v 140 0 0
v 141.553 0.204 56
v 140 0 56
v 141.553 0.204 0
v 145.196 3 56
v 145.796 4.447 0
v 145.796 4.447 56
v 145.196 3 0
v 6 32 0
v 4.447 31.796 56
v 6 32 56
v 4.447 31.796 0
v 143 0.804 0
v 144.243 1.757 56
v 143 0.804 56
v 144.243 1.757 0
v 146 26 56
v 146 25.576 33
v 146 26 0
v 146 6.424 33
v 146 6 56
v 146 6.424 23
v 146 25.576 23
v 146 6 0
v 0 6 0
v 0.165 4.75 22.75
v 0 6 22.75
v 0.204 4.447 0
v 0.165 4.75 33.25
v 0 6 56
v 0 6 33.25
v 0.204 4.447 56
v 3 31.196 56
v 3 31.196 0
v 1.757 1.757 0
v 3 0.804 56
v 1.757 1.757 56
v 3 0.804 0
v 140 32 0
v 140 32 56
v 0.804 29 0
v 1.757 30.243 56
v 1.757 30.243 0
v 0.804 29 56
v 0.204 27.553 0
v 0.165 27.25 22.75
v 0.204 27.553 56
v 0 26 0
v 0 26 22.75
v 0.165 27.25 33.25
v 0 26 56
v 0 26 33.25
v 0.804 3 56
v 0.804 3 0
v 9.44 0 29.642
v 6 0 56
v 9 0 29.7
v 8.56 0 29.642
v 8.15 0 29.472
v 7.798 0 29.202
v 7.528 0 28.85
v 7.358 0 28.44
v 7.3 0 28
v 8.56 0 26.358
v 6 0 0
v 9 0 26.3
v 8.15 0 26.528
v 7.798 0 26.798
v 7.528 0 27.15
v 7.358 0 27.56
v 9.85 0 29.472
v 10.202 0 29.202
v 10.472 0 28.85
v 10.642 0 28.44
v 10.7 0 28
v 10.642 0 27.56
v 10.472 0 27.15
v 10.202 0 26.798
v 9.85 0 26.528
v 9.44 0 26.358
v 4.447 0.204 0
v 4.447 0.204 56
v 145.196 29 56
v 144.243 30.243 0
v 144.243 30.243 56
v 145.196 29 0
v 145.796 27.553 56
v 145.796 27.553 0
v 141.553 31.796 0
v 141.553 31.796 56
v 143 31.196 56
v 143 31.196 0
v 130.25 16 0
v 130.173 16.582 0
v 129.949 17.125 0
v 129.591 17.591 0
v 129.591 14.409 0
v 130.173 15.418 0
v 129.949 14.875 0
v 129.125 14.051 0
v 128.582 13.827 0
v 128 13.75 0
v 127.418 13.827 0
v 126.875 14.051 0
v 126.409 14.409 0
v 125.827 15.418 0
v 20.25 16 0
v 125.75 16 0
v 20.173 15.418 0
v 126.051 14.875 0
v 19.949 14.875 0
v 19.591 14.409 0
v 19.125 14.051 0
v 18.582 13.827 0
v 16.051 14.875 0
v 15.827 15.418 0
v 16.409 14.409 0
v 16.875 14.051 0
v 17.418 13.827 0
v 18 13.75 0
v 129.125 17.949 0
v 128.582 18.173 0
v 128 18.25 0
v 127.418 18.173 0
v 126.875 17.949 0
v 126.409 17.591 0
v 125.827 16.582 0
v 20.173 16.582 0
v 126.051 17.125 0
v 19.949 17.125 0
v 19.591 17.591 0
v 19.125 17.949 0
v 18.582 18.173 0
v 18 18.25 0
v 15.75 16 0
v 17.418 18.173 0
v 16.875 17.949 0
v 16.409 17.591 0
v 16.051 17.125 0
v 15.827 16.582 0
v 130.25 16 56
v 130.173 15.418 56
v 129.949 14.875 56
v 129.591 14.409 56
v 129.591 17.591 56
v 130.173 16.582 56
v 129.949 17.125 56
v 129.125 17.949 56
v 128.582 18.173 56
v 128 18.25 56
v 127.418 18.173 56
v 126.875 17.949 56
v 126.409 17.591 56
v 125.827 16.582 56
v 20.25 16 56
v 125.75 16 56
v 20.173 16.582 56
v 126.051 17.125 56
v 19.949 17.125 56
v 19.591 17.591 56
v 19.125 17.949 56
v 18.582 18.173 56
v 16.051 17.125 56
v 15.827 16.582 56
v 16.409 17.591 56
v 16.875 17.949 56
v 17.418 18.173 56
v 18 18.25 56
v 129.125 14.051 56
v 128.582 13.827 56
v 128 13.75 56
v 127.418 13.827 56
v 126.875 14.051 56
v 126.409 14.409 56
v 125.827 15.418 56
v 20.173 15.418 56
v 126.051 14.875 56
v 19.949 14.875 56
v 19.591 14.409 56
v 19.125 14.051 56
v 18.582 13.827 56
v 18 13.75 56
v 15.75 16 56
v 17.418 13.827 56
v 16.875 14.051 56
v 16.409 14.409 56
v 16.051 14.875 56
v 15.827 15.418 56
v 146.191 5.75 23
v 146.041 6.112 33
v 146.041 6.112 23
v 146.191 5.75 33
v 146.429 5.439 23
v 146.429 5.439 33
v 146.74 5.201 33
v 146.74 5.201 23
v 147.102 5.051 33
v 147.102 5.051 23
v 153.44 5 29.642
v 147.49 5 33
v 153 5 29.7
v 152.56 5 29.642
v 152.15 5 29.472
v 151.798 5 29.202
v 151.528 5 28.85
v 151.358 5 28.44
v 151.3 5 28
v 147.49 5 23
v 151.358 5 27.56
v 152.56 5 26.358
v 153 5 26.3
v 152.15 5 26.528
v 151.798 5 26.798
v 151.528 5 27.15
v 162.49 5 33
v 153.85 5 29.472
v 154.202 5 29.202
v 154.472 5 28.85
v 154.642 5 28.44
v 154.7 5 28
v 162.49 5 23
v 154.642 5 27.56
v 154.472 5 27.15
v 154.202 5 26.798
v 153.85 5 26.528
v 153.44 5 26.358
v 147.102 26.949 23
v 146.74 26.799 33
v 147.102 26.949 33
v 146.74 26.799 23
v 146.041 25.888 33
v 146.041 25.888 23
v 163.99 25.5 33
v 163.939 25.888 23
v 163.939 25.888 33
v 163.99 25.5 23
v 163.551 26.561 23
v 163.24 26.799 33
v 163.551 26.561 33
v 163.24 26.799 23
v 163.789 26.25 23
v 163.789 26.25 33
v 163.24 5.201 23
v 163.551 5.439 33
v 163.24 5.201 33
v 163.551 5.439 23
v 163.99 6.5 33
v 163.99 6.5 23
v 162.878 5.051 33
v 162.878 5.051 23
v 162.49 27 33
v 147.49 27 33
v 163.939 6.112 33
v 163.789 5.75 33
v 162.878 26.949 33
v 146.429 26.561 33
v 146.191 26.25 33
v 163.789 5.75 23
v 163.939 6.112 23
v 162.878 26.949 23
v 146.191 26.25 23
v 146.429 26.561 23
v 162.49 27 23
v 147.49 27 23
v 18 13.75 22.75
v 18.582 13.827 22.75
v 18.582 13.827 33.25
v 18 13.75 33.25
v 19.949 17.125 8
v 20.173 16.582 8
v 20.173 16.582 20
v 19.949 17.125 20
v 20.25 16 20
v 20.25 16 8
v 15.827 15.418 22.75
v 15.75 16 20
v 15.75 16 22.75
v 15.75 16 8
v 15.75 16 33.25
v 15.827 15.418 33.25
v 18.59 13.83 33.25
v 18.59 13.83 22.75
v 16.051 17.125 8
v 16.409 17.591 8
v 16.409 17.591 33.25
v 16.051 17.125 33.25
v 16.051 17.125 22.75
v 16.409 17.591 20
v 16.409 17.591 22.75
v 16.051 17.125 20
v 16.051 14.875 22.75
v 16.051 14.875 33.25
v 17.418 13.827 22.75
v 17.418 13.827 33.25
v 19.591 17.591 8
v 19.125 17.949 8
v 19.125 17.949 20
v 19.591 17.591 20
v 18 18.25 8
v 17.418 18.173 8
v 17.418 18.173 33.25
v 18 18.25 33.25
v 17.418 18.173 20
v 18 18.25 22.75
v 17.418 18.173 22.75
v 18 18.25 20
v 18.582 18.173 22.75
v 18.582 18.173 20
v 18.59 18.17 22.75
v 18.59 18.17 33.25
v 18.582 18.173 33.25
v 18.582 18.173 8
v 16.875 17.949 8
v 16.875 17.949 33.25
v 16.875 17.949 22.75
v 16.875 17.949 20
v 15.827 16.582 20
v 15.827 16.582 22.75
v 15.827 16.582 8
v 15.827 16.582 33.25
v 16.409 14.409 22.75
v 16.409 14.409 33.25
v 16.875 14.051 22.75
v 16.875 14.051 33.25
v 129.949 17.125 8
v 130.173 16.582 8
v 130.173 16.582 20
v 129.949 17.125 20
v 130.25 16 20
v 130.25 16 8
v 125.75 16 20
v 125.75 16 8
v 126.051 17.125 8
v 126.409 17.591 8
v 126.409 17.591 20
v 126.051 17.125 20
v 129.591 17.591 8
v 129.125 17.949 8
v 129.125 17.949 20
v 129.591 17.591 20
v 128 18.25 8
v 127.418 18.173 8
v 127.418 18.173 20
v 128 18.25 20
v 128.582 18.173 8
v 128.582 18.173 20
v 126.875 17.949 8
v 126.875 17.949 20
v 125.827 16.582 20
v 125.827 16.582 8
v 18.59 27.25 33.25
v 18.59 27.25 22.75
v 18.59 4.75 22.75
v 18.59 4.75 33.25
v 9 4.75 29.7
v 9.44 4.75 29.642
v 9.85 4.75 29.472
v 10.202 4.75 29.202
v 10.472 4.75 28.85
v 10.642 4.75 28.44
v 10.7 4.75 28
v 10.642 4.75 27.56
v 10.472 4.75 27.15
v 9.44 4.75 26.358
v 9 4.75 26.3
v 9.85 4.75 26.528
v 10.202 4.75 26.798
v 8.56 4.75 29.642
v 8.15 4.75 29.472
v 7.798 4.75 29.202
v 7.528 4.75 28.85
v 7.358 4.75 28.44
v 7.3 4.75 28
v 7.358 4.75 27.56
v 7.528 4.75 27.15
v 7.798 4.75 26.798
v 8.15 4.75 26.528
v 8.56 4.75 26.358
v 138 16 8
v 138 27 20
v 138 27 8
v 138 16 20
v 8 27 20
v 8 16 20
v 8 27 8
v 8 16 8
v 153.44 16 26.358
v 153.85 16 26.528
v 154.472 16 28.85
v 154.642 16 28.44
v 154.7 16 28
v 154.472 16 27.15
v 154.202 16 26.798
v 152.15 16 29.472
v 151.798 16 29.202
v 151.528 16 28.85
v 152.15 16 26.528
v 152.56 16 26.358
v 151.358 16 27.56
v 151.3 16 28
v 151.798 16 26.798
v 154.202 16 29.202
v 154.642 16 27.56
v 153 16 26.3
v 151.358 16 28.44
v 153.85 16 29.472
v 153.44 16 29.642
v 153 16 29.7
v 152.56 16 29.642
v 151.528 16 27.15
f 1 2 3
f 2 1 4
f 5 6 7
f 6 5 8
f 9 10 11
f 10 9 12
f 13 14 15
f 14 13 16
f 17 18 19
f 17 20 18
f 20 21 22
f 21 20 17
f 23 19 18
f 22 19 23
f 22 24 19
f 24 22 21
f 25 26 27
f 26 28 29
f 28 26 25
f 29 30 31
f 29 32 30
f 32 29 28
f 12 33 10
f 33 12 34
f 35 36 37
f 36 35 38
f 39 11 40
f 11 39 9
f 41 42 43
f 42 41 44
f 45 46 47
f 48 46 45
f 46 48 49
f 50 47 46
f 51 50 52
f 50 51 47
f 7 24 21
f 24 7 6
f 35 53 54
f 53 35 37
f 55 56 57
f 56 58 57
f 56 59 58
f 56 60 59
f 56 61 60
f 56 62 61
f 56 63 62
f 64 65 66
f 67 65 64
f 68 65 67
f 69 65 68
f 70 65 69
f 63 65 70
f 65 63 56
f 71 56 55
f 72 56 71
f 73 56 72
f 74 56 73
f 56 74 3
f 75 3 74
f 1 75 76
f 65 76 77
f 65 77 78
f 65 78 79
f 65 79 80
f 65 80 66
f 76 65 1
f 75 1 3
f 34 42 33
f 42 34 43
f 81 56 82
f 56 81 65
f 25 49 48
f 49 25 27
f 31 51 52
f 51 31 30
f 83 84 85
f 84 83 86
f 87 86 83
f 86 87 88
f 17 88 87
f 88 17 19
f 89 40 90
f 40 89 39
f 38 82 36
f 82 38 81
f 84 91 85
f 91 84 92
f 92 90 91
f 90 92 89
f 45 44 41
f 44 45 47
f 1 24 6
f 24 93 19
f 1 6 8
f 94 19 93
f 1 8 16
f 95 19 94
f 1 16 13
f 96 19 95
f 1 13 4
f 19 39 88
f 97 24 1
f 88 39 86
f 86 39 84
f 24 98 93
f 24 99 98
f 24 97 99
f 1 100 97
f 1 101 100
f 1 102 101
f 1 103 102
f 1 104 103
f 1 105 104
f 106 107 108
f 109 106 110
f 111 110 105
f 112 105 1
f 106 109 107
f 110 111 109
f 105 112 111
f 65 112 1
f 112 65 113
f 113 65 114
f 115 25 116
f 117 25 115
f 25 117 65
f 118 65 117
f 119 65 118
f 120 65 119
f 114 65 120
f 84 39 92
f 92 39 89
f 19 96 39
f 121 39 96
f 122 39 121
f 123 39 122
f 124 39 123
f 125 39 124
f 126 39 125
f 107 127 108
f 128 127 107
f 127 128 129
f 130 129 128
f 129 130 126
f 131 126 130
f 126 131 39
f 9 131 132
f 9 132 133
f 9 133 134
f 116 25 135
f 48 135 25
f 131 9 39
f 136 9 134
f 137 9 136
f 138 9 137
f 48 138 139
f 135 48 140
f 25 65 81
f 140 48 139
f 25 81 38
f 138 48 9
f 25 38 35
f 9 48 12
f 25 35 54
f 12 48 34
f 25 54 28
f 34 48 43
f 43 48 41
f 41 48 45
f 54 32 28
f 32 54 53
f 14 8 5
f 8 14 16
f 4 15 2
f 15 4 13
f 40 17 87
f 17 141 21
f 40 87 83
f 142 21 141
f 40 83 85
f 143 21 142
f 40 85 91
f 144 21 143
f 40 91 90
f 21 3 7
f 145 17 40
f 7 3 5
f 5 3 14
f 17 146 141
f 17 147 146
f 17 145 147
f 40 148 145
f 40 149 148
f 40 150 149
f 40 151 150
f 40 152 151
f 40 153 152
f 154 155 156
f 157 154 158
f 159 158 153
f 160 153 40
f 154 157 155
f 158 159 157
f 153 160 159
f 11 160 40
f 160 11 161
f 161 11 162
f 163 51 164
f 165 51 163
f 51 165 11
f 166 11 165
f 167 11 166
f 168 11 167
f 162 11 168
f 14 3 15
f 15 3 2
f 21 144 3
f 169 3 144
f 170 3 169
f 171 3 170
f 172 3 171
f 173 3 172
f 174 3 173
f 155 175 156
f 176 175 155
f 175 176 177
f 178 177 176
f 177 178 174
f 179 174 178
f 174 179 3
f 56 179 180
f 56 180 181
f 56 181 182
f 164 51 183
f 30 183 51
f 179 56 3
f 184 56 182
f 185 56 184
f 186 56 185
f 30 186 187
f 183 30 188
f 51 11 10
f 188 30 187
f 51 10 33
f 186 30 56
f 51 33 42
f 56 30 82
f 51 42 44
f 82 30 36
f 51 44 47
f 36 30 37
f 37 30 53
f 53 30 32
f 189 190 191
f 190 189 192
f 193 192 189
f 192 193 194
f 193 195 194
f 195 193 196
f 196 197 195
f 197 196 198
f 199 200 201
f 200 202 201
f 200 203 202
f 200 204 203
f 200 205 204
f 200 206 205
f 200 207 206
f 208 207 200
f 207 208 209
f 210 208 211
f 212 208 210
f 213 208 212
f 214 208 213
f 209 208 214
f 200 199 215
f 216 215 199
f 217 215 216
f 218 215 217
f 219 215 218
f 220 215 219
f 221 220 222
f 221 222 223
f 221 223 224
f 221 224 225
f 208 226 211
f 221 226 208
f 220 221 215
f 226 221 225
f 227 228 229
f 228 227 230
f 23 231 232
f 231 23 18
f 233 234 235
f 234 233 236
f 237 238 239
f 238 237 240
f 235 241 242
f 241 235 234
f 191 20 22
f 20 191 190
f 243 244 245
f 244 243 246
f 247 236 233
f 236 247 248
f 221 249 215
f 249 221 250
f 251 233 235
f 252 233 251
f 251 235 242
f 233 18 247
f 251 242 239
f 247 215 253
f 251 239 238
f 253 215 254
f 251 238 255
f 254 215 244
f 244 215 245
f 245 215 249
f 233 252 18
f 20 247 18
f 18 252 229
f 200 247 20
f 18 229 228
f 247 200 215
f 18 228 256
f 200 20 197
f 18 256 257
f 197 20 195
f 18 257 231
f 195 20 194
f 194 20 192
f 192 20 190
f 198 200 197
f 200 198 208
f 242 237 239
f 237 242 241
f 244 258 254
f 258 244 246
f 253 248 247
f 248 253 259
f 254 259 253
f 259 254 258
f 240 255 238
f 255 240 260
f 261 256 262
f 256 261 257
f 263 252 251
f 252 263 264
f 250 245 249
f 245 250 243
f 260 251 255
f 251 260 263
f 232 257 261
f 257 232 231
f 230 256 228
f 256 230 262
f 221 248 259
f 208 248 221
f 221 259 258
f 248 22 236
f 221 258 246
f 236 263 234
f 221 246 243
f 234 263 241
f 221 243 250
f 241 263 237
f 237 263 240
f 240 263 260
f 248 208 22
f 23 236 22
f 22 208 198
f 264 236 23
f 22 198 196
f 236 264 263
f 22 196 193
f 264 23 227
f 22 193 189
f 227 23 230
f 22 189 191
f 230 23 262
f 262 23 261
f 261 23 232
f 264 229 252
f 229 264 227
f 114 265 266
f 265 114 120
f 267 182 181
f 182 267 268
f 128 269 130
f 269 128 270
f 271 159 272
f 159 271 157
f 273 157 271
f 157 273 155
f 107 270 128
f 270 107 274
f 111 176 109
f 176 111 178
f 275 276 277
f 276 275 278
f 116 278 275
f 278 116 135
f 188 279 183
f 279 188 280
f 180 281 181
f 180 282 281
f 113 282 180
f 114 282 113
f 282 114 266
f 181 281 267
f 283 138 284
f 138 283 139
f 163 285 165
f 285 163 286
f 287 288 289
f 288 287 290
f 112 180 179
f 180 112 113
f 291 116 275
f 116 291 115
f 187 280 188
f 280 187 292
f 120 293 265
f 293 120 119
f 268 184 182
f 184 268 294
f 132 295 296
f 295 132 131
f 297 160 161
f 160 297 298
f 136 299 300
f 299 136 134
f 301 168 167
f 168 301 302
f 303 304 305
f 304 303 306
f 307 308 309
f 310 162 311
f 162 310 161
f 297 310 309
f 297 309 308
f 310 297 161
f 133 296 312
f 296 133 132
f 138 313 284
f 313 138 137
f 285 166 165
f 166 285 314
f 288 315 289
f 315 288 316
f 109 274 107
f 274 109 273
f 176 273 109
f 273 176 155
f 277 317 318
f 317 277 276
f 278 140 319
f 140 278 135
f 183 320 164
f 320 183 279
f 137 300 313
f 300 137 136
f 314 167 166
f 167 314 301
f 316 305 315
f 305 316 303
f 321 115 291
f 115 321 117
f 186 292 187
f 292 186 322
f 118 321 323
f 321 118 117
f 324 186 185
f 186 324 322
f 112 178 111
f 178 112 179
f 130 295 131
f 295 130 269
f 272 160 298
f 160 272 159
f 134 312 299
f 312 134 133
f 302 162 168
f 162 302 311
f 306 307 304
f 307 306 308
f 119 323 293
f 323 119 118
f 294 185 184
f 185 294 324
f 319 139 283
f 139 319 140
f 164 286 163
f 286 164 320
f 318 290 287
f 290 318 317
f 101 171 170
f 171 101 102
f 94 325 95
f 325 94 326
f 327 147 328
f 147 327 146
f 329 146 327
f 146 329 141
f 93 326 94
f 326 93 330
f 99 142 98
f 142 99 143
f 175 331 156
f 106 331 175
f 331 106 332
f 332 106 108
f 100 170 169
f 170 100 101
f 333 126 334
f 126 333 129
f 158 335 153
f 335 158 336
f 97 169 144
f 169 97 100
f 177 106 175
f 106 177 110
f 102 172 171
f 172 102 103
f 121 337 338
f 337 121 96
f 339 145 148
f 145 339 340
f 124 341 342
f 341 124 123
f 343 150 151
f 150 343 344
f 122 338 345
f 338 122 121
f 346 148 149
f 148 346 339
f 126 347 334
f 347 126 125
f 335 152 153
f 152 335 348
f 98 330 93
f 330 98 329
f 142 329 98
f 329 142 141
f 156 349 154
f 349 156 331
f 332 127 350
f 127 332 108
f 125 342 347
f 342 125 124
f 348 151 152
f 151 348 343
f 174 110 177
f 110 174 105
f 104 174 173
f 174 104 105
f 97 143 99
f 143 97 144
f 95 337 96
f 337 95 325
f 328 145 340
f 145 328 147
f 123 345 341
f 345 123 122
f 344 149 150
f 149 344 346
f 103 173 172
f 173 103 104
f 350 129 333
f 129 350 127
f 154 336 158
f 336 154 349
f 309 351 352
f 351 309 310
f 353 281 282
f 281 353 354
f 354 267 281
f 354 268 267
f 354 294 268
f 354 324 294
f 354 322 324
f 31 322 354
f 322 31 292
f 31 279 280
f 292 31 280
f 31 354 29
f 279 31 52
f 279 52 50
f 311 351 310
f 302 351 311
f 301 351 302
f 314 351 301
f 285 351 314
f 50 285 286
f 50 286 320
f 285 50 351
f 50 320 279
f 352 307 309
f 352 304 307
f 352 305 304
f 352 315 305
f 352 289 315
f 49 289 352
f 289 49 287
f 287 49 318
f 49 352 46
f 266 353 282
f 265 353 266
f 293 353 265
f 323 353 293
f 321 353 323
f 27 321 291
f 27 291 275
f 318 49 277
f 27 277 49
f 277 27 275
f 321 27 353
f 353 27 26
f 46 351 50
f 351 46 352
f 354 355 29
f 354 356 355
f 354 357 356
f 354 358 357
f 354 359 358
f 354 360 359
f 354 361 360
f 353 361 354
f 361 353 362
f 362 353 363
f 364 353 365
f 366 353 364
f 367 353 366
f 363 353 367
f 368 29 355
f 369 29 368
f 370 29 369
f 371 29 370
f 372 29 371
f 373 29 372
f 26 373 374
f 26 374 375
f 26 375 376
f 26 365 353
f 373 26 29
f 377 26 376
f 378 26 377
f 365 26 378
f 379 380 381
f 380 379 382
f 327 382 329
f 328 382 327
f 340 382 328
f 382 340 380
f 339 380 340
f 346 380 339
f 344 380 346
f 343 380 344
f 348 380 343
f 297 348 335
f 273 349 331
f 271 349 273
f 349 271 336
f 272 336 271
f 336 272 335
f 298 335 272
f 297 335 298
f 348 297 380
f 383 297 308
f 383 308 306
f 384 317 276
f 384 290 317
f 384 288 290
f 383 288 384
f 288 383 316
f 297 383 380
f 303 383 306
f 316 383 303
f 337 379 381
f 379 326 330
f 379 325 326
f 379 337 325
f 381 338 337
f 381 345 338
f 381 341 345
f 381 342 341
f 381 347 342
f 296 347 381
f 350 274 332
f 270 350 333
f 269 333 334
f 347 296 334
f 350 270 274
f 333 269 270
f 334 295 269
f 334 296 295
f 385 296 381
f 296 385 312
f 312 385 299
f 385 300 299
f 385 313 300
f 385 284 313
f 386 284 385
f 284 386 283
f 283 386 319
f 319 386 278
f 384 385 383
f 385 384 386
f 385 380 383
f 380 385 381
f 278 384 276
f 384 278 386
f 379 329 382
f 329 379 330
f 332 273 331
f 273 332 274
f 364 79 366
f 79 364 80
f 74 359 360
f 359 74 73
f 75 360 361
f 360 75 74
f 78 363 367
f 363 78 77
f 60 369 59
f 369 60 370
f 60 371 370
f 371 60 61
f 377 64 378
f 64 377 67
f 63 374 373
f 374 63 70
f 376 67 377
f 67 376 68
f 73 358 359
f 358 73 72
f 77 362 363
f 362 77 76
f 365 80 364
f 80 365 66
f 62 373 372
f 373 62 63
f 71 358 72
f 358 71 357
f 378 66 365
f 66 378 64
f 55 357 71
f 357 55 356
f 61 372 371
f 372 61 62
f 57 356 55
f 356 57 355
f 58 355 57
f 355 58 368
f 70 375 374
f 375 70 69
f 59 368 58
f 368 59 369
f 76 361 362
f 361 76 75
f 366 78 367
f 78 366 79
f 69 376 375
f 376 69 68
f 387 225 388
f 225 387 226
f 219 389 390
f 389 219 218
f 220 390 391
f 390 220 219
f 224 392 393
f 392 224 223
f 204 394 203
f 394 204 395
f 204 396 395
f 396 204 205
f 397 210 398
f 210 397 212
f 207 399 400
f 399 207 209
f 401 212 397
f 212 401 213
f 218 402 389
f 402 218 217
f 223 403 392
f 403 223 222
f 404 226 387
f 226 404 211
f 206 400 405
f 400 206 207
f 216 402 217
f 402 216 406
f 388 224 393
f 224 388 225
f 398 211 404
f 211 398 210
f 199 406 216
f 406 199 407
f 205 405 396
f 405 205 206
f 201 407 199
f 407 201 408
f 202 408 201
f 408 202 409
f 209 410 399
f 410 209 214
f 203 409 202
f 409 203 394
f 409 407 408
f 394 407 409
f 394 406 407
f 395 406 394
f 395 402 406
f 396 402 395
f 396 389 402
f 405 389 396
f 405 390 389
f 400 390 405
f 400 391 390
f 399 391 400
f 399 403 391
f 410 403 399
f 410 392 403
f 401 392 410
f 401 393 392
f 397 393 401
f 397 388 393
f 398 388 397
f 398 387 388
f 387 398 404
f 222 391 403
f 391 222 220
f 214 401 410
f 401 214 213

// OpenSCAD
// file: 00_parameters.scad
// TenderCells DoorCell V1 shared parameters
// Units: millimeters

overall_w = 438;
overall_h = 368;
frame_depth = 56;

clear_w = 242;
clear_h = 312;

rail_thick = 32;
jamb_w = 48;
motor_jamb_w = 78;

// Printability targets
target_bed_xy = 220;
comfortable_part_max = 180;

// Modular frame split dimensions
top_seg_len = overall_w / 3;
bottom_seg_len = overall_w / 3;
left_jamb_seg_h = overall_h / 2;
right_lower_h = 118;
right_motor_h = 156;
right_upper_h = overall_h - right_lower_h - right_motor_h;

// Low-cost electronics envelope used by DoorCell V1.4.
// These dimensions are based on common generic modules, not a custom PCB.
esp32_board = [58, 31, 8];
drv8871_board = [31, 26, 7];
current_sensor_board = [26, 22, 7];
lm2596_board = [44, 22, 14];
inline_fuse_body = [45, 15, 14];
cn3065_board = [44, 24, 8];
electronics_clearance = 1.5;
controller_wall = 3;
controller_box_w = 170;
controller_box_h = 115;
controller_box_d = 46;
controller_lid_insert_offset = 11;
controller_m12_gland_d = 12.8;
controller_m10_gland_d = 10.6;
controller_m8_gland_d = 8.4;
controller_button_d = 16.2;

// Brass heat-set/push-in insert features.
insert_post_d = 8.0;
insert_post_h = 8.0;
insert_pilot_d = 4.6;
insert_pilot_depth = 6.5;
hold_down_screw_clearance = 3.4;

// Motor envelope for common 25GA/JGA25-370 gearmotors with optional encoder.
motor_body_d = 25.0;
motor_body_clearance_d = 27.2;
motor_body_len = 65;
motor_encoder_clearance = 16;
motor_mount_plate = [72, 92, 12];
motor_mount_cradle = [54, 74, 28];

// Optional solar add-on.
solar_panel_w = 145;
solar_panel_h = 145;
solar_panel_t = 4.0;
solar_panel_frame_border = 10;
solar_panel_frame_w = solar_panel_w + 2*solar_panel_frame_border;
solar_panel_frame_h = solar_panel_h + 2*solar_panel_frame_border;
solar_panel_back_depth = 14;
solar_panel_lip_overlap = 3;
solar_ball_d = 22;
solar_ball_socket_clearance = 0.45;
solar_mount_m5 = 5.4;

// Tongue-and-groove frame joints
// Fit target: common FDM printers with PETG/ASA.
// Clearance is per side, so sockets add 2x this value.
tongue_len = 18;
tongue_w = 22;
tongue_z = 10;
tongue_clearance_side = 0.25;
tongue_socket_depth_extra = 0.60;

door_w = 270;
door_h = 326;
door_t = 8;

track_gap = 11;
track_depth = 12;

// Rack-and-pinion drive
// Metric module gear math:
// circular_pitch = PI * module
// pitch_diameter = module * tooth_count
// outside_diameter = module * (tooth_count + 2)
// root_diameter = module * (tooth_count - 2.5)
gear_module = 2.0;
pressure_angle = 20;
gear_backlash = 0.20; // mm removed from rack tooth thickness at pitch line

pinion_teeth = 16;
pinion_pitch_d = gear_module * pinion_teeth;
pinion_pitch_radius = pinion_pitch_d / 2;
pinion_outer_d = gear_module * (pinion_teeth + 2);
pinion_outer_radius = pinion_outer_d / 2;
pinion_root_d = gear_module * (pinion_teeth - 2.5);
pinion_root_radius = pinion_root_d / 2;
pinion_thick = 12;
shaft_d = 6.2;

rack_tooth_count = 15;
rack_circular_pitch = 3.141592653589793 * gear_module;
rack_len = rack_circular_pitch * rack_tooth_count;
rack_w = 18;
rack_t = 6;
rack_addendum = gear_module;
rack_dedendum = 1.25 * gear_module;
rack_tooth_h = rack_addendum + rack_dedendum;
rack_pitch_line_z = rack_dedendum;
rack_tooth_pitch_thickness = rack_circular_pitch / 2 - gear_backlash;
rack_tooth_top_w = rack_tooth_pitch_thickness - 2 * rack_addendum * tan(pressure_angle);
rack_tooth_root_w = rack_tooth_pitch_thickness + 2 * rack_dedendum * tan(pressure_angle);

screw_m3 = 3.4;
screw_m4 = 4.5;
insert_m3 = 4.6;

eps = 0.01;

module rounded_box(size=[10,10,10], r=2) {
  hull() {
    translate([r,r,0]) cylinder(h=size[2], r=r, $fn=24);
    translate([size[0]-r,r,0]) cylinder(h=size[2], r=r, $fn=24);
    translate([r,size[1]-r,0]) cylinder(h=size[2], r=r, $fn=24);
    translate([size[0]-r,size[1]-r,0]) cylinder(h=size[2], r=r, $fn=24);
  }
}

module m3_clearance_hole(h=20) {
  cylinder(h=h, d=screw_m3, $fn=24);
}

module m4_clearance_hole(h=20) {
  cylinder(h=h, d=screw_m4, $fn=24);
}

module heat_insert_hole(h=6) {
  cylinder(h=h, d=insert_m3, $fn=24);
}

module heat_insert_post(h=insert_post_h, d=insert_post_d) {
  difference() {
    cylinder(h=h, d=d, $fn=32);
    translate([0,0,h-insert_pilot_depth+eps])
      cylinder(h=insert_pilot_depth+eps, d=insert_pilot_d, $fn=24);
  }
}

module m3_hold_down_slot(length=10, h=4) {
  hull() {
    translate([-length/2,0,0]) cylinder(h=h, d=hold_down_screw_clearance, $fn=20);
    translate([ length/2,0,0]) cylinder(h=h, d=hold_down_screw_clearance, $fn=20);
  }
}

module rail_channel(length=100) {
  cube([length, track_gap, track_depth]);
}

module frame_tongue_x() {
  rounded_box([tongue_len, tongue_w, tongue_z], r=1.5);
}

module frame_socket_x() {
  cube([
    tongue_len + tongue_socket_depth_extra,
    tongue_w + 2*tongue_clearance_side,
    tongue_z + 2*tongue_clearance_side
  ]);
}

module frame_tongue_y() {
  rounded_box([tongue_w, tongue_len, tongue_z], r=1.5);
}

module frame_socket_y() {
  cube([
    tongue_w + 2*tongue_clearance_side,
    tongue_len + tongue_socket_depth_extra,
    tongue_z + 2*tongue_clearance_side
  ]);
}

module rack_teeth(len=rack_len) {
  teeth = floor(len / rack_circular_pitch);
  for (i=[0:teeth-1]) {
    center = i*rack_circular_pitch + rack_circular_pitch/2;
    translate([0, 0, rack_t-0.20])
      linear_extrude(height=rack_w)
        polygon(points=[
          [center - rack_tooth_root_w/2, 0],
          [center + rack_tooth_root_w/2, 0],
          [center + rack_tooth_top_w/2, rack_tooth_h],
          [center - rack_tooth_top_w/2, rack_tooth_h]
        ]);
  }
}

function polar_point(r, a) = [r * cos(a), r * sin(a)];
// file: frame_modular_common.scad
include <00_parameters.scad>

module horizontal_frame_segment(seg_len=top_seg_len, rail_kind="top", joint_left="socket", joint_right="tongue") {
  difference() {
    union() {
      rounded_box([seg_len, rail_thick, frame_depth], r=6);

      if (joint_right == "tongue") {
        translate([seg_len - eps, rail_thick/2 - tongue_w/2, frame_depth/2 - tongue_z/2])
          frame_tongue_x();
      }
    }

    // Tongue receiver from previous segment.
    if (joint_left == "socket") {
      translate([
        -eps,
        rail_thick/2 - (tongue_w + 2*tongue_clearance_side)/2,
        frame_depth/2 - (tongue_z + 2*tongue_clearance_side)/2
      ])
        frame_socket_x();
    }

    // Sliding door guide channel.
    if (rail_kind == "top") {
      translate([8, rail_thick-track_gap-5, 8])
        rail_channel(length=seg_len-16);
    } else {
      translate([8, 5, frame_depth-track_depth-8])
        rail_channel(length=seg_len-16);

      // Drain slots for bottom rail.
      for (x=[seg_len*0.25, seg_len*0.5, seg_len*0.75]) {
        translate([x-10, rail_thick/2-2, frame_depth-4])
          cube([20, 4, 10]);
      }
    }

    // Coop mounting holes.
    for (x=[18, seg_len-18]) {
      translate([x, rail_thick/2, -eps])
        m4_clearance_hole(h=frame_depth+2);
    }

    // Cross-bolt holes near frame split joints.
    if (joint_left == "socket") {
      translate([tongue_len/2, rail_thick/2, frame_depth/2])
        rotate([90,0,0]) m3_clearance_hole(h=rail_thick+2);
    }
    if (joint_right == "tongue") {
      translate([seg_len + tongue_len/2 - 2, rail_thick/2, frame_depth/2])
        rotate([90,0,0]) m3_clearance_hole(h=rail_thick+2);
    }
  }
}

module left_jamb_segment(seg_h=left_jamb_seg_h, joint_bottom="socket", joint_top="tongue", corner_bottom=false, corner_top=false) {
  difference() {
    union() {
      rounded_box([jamb_w, seg_h, frame_depth], r=6);

      if (joint_top == "tongue") {
        translate([jamb_w/2 - tongue_w/2, seg_h - eps, frame_depth/2 - tongue_z/2])
          frame_tongue_y();
      }
    }

    if (joint_bottom == "socket") {
      translate([
        jamb_w/2 - (tongue_w + 2*tongue_clearance_side)/2,
        -eps,
        frame_depth/2 - (tongue_z + 2*tongue_clearance_side)/2
      ])
        frame_socket_y();
    }

    // Door pocket relief.
    translate([jamb_w-18, 0, 8])
      cube([16, seg_h, frame_depth-16]);

    // Coop mounting holes.
    for (y=[seg_h*0.28, seg_h*0.72]) {
      translate([jamb_w/2, y, -eps]) m4_clearance_hole(h=frame_depth+2);
    }

    // Rail-to-jamb corner holes.
    if (corner_bottom) {
      translate([jamb_w-10, 16, frame_depth/2])
        rotate([0,90,0]) m3_clearance_hole(h=20);
    }
    if (corner_top) {
      translate([jamb_w-10, seg_h-16, frame_depth/2])
        rotate([0,90,0]) m3_clearance_hole(h=20);
    }

    // Cross-bolt through tongue-and-groove.
    if (joint_bottom == "socket") {
      translate([jamb_w/2, tongue_len/2, frame_depth/2])
        rotate([0,90,0]) m3_clearance_hole(h=jamb_w+2);
    }
    if (joint_top == "tongue") {
      translate([jamb_w/2, seg_h + tongue_len/2 - 2, frame_depth/2])
        rotate([0,90,0]) m3_clearance_hole(h=jamb_w+2);
    }
  }
}

module right_jamb_segment(seg_h=120, has_motor_bay=false, joint_bottom="socket", joint_top="tongue", corner_bottom=false, corner_top=false) {
  difference() {
    union() {
      rounded_box([motor_jamb_w, seg_h, frame_depth], r=6);

      if (has_motor_bay) {
        translate([motor_jamb_w-8, 20, 0])
          rounded_box([70, seg_h-32, frame_depth], r=5);
      }

      if (joint_top == "tongue") {
        translate([motor_jamb_w/2 - tongue_w/2, seg_h - eps, frame_depth/2 - tongue_z/2])
          frame_tongue_y();
      }
    }

    if (joint_bottom == "socket") {
      translate([
        motor_jamb_w/2 - (tongue_w + 2*tongue_clearance_side)/2,
        -eps,
        frame_depth/2 - (tongue_z + 2*tongue_clearance_side)/2
      ])
        frame_socket_y();
    }

    // Door pocket relief.
    translate([0, 0, 8])
      cube([20, seg_h, frame_depth-16]);

    if (has_motor_bay) {
      // Motor cassette pocket sized for the revised 25GA mount.
      translate([motor_jamb_w+5, 33, 8])
        cube([62, 92, 40]);

      // Pinion/rack engagement window.
      translate([4, 68, 16])
        cube([46, 36, 24]);

      // Motor/control harness pass-through for M12-style cable gland routing.
      translate([motor_jamb_w+26, seg_h-42, 16])
        cube([24, 34, 26]);

      // Limit switch lead pass-throughs.
      translate([motor_jamb_w-2, 18, 18])
        cube([16, 18, 16]);
      translate([motor_jamb_w-2, seg_h-36, 18])
        cube([16, 18, 16]);
    }

    // Coop mounting holes.
    for (y=[seg_h*0.28, seg_h*0.72]) {
      translate([motor_jamb_w/2, y, -eps]) m4_clearance_hole(h=frame_depth+2);
    }

    // Rail-to-jamb corner holes.
    if (corner_bottom) {
      translate([10, 16, frame_depth/2])
        rotate([0,90,0]) m3_clearance_hole(h=20);
    }
    if (corner_top) {
      translate([10, seg_h-16, frame_depth/2])
        rotate([0,90,0]) m3_clearance_hole(h=20);
    }

    // Cross-bolt through tongue-and-groove.
    if (joint_bottom == "socket") {
      translate([motor_jamb_w/2, tongue_len/2, frame_depth/2])
        rotate([0,90,0]) m3_clearance_hole(h=motor_jamb_w+2);
    }
    if (joint_top == "tongue") {
      translate([motor_jamb_w/2, seg_h + tongue_len/2 - 2, frame_depth/2])
        rotate([0,90,0]) m3_clearance_hole(h=motor_jamb_w+2);
    }
  }
}
// main file
include <frame_modular_common.scad>

horizontal_frame_segment(seg_len=top_seg_len, rail_kind="top", joint_left="socket", joint_right="tongue");
